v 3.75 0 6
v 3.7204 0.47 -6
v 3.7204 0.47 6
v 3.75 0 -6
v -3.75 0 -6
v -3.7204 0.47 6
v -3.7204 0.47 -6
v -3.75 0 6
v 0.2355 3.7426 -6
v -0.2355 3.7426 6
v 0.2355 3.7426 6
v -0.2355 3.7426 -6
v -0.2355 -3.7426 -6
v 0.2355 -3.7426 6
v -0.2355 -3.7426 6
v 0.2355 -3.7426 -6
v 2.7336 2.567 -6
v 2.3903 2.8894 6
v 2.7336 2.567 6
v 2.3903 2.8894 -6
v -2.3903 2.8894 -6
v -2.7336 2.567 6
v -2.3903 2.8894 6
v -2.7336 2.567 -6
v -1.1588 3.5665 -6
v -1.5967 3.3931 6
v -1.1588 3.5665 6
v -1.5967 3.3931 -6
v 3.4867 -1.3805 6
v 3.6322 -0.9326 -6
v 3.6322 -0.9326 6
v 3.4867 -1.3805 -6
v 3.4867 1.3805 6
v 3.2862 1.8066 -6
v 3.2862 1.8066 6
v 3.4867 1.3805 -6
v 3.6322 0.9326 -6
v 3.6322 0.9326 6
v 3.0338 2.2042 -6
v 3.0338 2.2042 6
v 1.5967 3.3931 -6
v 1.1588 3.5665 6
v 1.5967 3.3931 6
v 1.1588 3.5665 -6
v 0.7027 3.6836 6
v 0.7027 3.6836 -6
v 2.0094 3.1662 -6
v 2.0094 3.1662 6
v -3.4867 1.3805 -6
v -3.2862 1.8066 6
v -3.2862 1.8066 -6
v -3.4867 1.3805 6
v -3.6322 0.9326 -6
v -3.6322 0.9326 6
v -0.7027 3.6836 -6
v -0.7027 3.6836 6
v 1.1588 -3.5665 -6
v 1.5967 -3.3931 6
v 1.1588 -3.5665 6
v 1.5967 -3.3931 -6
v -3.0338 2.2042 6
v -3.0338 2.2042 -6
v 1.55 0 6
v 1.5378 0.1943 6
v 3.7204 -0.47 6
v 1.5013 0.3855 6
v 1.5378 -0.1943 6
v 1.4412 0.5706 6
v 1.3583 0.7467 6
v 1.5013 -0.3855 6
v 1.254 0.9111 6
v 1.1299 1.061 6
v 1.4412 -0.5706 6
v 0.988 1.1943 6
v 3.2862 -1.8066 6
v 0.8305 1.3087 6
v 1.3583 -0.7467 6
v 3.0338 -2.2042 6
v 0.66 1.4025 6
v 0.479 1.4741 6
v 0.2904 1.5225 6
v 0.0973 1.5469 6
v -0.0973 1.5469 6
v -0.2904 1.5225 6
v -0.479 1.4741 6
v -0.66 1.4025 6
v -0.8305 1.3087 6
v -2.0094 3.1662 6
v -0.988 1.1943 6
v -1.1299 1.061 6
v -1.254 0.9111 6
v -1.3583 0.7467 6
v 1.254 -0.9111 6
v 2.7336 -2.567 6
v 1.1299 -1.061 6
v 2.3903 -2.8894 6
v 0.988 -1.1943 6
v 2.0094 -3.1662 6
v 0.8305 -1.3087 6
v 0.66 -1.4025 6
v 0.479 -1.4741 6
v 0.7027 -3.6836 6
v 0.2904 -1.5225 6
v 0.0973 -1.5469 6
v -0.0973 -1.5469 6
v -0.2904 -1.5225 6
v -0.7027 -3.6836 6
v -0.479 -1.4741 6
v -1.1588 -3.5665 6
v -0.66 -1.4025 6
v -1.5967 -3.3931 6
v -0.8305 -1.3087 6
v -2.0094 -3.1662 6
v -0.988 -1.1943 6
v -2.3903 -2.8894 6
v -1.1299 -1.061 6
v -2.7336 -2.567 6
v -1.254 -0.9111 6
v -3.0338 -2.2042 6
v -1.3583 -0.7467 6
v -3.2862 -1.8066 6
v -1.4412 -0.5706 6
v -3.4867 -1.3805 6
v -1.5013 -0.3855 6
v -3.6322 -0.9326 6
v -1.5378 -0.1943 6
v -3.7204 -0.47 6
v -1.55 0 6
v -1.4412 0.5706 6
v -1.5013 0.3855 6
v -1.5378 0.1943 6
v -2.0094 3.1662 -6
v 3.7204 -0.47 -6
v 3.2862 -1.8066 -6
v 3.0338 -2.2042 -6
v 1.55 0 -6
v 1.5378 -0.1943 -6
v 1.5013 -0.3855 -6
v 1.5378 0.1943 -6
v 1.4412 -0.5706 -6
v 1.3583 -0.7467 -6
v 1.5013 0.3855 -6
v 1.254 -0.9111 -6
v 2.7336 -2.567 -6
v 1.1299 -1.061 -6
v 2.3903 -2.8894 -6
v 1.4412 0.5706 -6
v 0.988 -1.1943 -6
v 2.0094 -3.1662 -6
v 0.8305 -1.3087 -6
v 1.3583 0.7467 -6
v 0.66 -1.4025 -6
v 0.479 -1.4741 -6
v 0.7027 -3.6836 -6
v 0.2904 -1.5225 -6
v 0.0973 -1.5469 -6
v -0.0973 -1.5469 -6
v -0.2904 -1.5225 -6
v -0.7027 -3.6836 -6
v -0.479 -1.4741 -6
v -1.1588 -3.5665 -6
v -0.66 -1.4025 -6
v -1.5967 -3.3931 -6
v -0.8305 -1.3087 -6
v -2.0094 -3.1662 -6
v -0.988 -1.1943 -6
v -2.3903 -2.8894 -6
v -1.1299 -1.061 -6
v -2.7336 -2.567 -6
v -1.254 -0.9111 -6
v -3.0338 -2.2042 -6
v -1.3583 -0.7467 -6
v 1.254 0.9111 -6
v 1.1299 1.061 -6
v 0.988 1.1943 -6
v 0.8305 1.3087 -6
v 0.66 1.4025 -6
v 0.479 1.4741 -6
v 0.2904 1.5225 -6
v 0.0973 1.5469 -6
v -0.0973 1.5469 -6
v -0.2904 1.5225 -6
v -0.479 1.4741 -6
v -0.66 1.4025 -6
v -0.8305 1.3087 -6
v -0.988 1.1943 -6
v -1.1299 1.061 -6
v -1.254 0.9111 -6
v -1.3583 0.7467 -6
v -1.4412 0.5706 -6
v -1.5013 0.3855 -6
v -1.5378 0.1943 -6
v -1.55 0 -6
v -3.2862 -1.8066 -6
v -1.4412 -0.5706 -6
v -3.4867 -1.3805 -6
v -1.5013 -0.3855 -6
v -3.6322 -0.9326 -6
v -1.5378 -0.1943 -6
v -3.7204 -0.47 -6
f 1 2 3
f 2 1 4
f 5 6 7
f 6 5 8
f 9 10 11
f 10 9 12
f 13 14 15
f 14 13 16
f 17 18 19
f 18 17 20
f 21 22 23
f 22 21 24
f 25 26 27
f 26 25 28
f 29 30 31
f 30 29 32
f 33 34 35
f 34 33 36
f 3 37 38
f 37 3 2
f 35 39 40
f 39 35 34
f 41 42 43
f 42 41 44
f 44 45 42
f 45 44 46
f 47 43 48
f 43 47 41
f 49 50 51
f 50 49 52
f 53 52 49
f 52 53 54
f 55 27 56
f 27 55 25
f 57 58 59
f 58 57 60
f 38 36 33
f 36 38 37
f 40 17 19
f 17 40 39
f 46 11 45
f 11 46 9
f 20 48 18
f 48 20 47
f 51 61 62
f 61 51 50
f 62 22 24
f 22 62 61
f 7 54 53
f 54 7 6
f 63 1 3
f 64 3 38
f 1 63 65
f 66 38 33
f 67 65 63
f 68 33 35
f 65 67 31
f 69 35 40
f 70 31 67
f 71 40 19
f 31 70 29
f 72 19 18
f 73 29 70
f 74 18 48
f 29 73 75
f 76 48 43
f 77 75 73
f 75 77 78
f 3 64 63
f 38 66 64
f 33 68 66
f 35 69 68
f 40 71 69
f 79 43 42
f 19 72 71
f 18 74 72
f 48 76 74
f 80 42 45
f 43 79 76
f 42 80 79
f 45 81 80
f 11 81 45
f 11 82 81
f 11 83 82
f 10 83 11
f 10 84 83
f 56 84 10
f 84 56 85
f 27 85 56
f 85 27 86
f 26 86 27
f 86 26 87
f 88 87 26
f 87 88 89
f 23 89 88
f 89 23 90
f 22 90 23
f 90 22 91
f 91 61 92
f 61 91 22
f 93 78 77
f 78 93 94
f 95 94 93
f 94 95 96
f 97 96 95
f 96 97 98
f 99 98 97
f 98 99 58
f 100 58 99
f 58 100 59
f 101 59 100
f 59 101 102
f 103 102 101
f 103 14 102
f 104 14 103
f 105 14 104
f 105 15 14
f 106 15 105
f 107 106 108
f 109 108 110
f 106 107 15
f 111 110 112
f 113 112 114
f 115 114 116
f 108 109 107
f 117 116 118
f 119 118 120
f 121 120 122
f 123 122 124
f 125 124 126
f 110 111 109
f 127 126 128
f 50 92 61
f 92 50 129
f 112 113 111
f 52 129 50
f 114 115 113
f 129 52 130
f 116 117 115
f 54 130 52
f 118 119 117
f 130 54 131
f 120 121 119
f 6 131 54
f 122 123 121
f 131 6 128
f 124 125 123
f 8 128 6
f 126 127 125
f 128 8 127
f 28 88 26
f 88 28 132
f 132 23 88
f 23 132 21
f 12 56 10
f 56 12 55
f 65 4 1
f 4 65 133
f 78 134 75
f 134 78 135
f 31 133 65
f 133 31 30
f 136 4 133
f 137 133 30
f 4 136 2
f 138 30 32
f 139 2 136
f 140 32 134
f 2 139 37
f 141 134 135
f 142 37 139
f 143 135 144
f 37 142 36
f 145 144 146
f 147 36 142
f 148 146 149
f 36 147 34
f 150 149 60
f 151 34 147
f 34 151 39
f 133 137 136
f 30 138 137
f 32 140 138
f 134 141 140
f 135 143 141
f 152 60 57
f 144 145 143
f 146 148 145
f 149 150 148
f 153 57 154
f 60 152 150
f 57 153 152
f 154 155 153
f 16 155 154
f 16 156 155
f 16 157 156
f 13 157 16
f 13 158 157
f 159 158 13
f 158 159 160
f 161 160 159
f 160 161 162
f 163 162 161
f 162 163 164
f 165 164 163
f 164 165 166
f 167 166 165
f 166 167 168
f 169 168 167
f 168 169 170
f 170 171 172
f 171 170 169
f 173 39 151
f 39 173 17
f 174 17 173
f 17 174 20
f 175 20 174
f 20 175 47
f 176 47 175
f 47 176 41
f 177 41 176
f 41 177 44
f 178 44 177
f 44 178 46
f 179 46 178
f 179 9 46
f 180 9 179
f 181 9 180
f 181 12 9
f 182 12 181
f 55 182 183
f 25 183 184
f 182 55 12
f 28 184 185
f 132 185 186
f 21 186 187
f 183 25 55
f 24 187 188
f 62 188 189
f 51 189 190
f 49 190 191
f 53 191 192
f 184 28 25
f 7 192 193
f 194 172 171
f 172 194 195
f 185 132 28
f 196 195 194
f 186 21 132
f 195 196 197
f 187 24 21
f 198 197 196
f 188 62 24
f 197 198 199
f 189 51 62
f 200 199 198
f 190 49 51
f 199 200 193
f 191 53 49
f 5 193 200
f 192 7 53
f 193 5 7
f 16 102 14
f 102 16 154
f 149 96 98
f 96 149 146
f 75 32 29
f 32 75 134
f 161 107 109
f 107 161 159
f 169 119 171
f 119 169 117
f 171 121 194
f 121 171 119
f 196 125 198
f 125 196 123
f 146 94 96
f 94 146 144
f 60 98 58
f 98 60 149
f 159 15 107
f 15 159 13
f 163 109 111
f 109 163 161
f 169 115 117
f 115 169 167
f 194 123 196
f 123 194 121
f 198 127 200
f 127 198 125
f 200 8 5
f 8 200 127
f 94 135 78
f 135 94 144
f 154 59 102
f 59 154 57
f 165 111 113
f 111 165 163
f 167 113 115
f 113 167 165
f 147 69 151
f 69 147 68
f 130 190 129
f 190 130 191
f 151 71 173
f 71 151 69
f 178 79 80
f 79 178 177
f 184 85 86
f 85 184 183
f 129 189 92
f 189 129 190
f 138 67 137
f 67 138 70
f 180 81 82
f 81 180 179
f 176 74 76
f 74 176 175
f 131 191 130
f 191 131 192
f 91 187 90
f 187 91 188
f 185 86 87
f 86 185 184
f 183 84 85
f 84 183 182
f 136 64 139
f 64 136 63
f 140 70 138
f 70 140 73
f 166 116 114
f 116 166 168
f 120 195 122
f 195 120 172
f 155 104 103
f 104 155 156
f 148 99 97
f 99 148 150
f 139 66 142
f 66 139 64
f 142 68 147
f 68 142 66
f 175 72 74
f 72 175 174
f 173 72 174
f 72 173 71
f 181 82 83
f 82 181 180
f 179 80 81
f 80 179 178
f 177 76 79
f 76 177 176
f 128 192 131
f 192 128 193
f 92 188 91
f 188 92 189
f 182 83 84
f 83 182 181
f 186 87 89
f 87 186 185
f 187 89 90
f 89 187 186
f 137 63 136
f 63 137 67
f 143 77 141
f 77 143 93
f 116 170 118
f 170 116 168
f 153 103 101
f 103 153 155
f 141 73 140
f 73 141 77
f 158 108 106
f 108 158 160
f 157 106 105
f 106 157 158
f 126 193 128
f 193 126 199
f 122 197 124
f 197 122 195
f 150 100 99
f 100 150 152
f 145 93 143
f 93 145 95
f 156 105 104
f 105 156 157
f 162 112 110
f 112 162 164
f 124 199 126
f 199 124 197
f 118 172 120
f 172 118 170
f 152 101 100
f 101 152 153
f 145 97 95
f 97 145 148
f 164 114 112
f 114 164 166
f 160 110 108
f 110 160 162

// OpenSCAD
$fn = 50;


difference() {
	union() {
		translate(v = [0, 0, -6.0000000000]) {
			cylinder(h = 12, r = 3.7500000000);
		}
	}
	union() {
		translate(v = [0, 0, -100.0000000000]) {
			cylinder(h = 200, r = 1.5500000000);
		}
	}
}
